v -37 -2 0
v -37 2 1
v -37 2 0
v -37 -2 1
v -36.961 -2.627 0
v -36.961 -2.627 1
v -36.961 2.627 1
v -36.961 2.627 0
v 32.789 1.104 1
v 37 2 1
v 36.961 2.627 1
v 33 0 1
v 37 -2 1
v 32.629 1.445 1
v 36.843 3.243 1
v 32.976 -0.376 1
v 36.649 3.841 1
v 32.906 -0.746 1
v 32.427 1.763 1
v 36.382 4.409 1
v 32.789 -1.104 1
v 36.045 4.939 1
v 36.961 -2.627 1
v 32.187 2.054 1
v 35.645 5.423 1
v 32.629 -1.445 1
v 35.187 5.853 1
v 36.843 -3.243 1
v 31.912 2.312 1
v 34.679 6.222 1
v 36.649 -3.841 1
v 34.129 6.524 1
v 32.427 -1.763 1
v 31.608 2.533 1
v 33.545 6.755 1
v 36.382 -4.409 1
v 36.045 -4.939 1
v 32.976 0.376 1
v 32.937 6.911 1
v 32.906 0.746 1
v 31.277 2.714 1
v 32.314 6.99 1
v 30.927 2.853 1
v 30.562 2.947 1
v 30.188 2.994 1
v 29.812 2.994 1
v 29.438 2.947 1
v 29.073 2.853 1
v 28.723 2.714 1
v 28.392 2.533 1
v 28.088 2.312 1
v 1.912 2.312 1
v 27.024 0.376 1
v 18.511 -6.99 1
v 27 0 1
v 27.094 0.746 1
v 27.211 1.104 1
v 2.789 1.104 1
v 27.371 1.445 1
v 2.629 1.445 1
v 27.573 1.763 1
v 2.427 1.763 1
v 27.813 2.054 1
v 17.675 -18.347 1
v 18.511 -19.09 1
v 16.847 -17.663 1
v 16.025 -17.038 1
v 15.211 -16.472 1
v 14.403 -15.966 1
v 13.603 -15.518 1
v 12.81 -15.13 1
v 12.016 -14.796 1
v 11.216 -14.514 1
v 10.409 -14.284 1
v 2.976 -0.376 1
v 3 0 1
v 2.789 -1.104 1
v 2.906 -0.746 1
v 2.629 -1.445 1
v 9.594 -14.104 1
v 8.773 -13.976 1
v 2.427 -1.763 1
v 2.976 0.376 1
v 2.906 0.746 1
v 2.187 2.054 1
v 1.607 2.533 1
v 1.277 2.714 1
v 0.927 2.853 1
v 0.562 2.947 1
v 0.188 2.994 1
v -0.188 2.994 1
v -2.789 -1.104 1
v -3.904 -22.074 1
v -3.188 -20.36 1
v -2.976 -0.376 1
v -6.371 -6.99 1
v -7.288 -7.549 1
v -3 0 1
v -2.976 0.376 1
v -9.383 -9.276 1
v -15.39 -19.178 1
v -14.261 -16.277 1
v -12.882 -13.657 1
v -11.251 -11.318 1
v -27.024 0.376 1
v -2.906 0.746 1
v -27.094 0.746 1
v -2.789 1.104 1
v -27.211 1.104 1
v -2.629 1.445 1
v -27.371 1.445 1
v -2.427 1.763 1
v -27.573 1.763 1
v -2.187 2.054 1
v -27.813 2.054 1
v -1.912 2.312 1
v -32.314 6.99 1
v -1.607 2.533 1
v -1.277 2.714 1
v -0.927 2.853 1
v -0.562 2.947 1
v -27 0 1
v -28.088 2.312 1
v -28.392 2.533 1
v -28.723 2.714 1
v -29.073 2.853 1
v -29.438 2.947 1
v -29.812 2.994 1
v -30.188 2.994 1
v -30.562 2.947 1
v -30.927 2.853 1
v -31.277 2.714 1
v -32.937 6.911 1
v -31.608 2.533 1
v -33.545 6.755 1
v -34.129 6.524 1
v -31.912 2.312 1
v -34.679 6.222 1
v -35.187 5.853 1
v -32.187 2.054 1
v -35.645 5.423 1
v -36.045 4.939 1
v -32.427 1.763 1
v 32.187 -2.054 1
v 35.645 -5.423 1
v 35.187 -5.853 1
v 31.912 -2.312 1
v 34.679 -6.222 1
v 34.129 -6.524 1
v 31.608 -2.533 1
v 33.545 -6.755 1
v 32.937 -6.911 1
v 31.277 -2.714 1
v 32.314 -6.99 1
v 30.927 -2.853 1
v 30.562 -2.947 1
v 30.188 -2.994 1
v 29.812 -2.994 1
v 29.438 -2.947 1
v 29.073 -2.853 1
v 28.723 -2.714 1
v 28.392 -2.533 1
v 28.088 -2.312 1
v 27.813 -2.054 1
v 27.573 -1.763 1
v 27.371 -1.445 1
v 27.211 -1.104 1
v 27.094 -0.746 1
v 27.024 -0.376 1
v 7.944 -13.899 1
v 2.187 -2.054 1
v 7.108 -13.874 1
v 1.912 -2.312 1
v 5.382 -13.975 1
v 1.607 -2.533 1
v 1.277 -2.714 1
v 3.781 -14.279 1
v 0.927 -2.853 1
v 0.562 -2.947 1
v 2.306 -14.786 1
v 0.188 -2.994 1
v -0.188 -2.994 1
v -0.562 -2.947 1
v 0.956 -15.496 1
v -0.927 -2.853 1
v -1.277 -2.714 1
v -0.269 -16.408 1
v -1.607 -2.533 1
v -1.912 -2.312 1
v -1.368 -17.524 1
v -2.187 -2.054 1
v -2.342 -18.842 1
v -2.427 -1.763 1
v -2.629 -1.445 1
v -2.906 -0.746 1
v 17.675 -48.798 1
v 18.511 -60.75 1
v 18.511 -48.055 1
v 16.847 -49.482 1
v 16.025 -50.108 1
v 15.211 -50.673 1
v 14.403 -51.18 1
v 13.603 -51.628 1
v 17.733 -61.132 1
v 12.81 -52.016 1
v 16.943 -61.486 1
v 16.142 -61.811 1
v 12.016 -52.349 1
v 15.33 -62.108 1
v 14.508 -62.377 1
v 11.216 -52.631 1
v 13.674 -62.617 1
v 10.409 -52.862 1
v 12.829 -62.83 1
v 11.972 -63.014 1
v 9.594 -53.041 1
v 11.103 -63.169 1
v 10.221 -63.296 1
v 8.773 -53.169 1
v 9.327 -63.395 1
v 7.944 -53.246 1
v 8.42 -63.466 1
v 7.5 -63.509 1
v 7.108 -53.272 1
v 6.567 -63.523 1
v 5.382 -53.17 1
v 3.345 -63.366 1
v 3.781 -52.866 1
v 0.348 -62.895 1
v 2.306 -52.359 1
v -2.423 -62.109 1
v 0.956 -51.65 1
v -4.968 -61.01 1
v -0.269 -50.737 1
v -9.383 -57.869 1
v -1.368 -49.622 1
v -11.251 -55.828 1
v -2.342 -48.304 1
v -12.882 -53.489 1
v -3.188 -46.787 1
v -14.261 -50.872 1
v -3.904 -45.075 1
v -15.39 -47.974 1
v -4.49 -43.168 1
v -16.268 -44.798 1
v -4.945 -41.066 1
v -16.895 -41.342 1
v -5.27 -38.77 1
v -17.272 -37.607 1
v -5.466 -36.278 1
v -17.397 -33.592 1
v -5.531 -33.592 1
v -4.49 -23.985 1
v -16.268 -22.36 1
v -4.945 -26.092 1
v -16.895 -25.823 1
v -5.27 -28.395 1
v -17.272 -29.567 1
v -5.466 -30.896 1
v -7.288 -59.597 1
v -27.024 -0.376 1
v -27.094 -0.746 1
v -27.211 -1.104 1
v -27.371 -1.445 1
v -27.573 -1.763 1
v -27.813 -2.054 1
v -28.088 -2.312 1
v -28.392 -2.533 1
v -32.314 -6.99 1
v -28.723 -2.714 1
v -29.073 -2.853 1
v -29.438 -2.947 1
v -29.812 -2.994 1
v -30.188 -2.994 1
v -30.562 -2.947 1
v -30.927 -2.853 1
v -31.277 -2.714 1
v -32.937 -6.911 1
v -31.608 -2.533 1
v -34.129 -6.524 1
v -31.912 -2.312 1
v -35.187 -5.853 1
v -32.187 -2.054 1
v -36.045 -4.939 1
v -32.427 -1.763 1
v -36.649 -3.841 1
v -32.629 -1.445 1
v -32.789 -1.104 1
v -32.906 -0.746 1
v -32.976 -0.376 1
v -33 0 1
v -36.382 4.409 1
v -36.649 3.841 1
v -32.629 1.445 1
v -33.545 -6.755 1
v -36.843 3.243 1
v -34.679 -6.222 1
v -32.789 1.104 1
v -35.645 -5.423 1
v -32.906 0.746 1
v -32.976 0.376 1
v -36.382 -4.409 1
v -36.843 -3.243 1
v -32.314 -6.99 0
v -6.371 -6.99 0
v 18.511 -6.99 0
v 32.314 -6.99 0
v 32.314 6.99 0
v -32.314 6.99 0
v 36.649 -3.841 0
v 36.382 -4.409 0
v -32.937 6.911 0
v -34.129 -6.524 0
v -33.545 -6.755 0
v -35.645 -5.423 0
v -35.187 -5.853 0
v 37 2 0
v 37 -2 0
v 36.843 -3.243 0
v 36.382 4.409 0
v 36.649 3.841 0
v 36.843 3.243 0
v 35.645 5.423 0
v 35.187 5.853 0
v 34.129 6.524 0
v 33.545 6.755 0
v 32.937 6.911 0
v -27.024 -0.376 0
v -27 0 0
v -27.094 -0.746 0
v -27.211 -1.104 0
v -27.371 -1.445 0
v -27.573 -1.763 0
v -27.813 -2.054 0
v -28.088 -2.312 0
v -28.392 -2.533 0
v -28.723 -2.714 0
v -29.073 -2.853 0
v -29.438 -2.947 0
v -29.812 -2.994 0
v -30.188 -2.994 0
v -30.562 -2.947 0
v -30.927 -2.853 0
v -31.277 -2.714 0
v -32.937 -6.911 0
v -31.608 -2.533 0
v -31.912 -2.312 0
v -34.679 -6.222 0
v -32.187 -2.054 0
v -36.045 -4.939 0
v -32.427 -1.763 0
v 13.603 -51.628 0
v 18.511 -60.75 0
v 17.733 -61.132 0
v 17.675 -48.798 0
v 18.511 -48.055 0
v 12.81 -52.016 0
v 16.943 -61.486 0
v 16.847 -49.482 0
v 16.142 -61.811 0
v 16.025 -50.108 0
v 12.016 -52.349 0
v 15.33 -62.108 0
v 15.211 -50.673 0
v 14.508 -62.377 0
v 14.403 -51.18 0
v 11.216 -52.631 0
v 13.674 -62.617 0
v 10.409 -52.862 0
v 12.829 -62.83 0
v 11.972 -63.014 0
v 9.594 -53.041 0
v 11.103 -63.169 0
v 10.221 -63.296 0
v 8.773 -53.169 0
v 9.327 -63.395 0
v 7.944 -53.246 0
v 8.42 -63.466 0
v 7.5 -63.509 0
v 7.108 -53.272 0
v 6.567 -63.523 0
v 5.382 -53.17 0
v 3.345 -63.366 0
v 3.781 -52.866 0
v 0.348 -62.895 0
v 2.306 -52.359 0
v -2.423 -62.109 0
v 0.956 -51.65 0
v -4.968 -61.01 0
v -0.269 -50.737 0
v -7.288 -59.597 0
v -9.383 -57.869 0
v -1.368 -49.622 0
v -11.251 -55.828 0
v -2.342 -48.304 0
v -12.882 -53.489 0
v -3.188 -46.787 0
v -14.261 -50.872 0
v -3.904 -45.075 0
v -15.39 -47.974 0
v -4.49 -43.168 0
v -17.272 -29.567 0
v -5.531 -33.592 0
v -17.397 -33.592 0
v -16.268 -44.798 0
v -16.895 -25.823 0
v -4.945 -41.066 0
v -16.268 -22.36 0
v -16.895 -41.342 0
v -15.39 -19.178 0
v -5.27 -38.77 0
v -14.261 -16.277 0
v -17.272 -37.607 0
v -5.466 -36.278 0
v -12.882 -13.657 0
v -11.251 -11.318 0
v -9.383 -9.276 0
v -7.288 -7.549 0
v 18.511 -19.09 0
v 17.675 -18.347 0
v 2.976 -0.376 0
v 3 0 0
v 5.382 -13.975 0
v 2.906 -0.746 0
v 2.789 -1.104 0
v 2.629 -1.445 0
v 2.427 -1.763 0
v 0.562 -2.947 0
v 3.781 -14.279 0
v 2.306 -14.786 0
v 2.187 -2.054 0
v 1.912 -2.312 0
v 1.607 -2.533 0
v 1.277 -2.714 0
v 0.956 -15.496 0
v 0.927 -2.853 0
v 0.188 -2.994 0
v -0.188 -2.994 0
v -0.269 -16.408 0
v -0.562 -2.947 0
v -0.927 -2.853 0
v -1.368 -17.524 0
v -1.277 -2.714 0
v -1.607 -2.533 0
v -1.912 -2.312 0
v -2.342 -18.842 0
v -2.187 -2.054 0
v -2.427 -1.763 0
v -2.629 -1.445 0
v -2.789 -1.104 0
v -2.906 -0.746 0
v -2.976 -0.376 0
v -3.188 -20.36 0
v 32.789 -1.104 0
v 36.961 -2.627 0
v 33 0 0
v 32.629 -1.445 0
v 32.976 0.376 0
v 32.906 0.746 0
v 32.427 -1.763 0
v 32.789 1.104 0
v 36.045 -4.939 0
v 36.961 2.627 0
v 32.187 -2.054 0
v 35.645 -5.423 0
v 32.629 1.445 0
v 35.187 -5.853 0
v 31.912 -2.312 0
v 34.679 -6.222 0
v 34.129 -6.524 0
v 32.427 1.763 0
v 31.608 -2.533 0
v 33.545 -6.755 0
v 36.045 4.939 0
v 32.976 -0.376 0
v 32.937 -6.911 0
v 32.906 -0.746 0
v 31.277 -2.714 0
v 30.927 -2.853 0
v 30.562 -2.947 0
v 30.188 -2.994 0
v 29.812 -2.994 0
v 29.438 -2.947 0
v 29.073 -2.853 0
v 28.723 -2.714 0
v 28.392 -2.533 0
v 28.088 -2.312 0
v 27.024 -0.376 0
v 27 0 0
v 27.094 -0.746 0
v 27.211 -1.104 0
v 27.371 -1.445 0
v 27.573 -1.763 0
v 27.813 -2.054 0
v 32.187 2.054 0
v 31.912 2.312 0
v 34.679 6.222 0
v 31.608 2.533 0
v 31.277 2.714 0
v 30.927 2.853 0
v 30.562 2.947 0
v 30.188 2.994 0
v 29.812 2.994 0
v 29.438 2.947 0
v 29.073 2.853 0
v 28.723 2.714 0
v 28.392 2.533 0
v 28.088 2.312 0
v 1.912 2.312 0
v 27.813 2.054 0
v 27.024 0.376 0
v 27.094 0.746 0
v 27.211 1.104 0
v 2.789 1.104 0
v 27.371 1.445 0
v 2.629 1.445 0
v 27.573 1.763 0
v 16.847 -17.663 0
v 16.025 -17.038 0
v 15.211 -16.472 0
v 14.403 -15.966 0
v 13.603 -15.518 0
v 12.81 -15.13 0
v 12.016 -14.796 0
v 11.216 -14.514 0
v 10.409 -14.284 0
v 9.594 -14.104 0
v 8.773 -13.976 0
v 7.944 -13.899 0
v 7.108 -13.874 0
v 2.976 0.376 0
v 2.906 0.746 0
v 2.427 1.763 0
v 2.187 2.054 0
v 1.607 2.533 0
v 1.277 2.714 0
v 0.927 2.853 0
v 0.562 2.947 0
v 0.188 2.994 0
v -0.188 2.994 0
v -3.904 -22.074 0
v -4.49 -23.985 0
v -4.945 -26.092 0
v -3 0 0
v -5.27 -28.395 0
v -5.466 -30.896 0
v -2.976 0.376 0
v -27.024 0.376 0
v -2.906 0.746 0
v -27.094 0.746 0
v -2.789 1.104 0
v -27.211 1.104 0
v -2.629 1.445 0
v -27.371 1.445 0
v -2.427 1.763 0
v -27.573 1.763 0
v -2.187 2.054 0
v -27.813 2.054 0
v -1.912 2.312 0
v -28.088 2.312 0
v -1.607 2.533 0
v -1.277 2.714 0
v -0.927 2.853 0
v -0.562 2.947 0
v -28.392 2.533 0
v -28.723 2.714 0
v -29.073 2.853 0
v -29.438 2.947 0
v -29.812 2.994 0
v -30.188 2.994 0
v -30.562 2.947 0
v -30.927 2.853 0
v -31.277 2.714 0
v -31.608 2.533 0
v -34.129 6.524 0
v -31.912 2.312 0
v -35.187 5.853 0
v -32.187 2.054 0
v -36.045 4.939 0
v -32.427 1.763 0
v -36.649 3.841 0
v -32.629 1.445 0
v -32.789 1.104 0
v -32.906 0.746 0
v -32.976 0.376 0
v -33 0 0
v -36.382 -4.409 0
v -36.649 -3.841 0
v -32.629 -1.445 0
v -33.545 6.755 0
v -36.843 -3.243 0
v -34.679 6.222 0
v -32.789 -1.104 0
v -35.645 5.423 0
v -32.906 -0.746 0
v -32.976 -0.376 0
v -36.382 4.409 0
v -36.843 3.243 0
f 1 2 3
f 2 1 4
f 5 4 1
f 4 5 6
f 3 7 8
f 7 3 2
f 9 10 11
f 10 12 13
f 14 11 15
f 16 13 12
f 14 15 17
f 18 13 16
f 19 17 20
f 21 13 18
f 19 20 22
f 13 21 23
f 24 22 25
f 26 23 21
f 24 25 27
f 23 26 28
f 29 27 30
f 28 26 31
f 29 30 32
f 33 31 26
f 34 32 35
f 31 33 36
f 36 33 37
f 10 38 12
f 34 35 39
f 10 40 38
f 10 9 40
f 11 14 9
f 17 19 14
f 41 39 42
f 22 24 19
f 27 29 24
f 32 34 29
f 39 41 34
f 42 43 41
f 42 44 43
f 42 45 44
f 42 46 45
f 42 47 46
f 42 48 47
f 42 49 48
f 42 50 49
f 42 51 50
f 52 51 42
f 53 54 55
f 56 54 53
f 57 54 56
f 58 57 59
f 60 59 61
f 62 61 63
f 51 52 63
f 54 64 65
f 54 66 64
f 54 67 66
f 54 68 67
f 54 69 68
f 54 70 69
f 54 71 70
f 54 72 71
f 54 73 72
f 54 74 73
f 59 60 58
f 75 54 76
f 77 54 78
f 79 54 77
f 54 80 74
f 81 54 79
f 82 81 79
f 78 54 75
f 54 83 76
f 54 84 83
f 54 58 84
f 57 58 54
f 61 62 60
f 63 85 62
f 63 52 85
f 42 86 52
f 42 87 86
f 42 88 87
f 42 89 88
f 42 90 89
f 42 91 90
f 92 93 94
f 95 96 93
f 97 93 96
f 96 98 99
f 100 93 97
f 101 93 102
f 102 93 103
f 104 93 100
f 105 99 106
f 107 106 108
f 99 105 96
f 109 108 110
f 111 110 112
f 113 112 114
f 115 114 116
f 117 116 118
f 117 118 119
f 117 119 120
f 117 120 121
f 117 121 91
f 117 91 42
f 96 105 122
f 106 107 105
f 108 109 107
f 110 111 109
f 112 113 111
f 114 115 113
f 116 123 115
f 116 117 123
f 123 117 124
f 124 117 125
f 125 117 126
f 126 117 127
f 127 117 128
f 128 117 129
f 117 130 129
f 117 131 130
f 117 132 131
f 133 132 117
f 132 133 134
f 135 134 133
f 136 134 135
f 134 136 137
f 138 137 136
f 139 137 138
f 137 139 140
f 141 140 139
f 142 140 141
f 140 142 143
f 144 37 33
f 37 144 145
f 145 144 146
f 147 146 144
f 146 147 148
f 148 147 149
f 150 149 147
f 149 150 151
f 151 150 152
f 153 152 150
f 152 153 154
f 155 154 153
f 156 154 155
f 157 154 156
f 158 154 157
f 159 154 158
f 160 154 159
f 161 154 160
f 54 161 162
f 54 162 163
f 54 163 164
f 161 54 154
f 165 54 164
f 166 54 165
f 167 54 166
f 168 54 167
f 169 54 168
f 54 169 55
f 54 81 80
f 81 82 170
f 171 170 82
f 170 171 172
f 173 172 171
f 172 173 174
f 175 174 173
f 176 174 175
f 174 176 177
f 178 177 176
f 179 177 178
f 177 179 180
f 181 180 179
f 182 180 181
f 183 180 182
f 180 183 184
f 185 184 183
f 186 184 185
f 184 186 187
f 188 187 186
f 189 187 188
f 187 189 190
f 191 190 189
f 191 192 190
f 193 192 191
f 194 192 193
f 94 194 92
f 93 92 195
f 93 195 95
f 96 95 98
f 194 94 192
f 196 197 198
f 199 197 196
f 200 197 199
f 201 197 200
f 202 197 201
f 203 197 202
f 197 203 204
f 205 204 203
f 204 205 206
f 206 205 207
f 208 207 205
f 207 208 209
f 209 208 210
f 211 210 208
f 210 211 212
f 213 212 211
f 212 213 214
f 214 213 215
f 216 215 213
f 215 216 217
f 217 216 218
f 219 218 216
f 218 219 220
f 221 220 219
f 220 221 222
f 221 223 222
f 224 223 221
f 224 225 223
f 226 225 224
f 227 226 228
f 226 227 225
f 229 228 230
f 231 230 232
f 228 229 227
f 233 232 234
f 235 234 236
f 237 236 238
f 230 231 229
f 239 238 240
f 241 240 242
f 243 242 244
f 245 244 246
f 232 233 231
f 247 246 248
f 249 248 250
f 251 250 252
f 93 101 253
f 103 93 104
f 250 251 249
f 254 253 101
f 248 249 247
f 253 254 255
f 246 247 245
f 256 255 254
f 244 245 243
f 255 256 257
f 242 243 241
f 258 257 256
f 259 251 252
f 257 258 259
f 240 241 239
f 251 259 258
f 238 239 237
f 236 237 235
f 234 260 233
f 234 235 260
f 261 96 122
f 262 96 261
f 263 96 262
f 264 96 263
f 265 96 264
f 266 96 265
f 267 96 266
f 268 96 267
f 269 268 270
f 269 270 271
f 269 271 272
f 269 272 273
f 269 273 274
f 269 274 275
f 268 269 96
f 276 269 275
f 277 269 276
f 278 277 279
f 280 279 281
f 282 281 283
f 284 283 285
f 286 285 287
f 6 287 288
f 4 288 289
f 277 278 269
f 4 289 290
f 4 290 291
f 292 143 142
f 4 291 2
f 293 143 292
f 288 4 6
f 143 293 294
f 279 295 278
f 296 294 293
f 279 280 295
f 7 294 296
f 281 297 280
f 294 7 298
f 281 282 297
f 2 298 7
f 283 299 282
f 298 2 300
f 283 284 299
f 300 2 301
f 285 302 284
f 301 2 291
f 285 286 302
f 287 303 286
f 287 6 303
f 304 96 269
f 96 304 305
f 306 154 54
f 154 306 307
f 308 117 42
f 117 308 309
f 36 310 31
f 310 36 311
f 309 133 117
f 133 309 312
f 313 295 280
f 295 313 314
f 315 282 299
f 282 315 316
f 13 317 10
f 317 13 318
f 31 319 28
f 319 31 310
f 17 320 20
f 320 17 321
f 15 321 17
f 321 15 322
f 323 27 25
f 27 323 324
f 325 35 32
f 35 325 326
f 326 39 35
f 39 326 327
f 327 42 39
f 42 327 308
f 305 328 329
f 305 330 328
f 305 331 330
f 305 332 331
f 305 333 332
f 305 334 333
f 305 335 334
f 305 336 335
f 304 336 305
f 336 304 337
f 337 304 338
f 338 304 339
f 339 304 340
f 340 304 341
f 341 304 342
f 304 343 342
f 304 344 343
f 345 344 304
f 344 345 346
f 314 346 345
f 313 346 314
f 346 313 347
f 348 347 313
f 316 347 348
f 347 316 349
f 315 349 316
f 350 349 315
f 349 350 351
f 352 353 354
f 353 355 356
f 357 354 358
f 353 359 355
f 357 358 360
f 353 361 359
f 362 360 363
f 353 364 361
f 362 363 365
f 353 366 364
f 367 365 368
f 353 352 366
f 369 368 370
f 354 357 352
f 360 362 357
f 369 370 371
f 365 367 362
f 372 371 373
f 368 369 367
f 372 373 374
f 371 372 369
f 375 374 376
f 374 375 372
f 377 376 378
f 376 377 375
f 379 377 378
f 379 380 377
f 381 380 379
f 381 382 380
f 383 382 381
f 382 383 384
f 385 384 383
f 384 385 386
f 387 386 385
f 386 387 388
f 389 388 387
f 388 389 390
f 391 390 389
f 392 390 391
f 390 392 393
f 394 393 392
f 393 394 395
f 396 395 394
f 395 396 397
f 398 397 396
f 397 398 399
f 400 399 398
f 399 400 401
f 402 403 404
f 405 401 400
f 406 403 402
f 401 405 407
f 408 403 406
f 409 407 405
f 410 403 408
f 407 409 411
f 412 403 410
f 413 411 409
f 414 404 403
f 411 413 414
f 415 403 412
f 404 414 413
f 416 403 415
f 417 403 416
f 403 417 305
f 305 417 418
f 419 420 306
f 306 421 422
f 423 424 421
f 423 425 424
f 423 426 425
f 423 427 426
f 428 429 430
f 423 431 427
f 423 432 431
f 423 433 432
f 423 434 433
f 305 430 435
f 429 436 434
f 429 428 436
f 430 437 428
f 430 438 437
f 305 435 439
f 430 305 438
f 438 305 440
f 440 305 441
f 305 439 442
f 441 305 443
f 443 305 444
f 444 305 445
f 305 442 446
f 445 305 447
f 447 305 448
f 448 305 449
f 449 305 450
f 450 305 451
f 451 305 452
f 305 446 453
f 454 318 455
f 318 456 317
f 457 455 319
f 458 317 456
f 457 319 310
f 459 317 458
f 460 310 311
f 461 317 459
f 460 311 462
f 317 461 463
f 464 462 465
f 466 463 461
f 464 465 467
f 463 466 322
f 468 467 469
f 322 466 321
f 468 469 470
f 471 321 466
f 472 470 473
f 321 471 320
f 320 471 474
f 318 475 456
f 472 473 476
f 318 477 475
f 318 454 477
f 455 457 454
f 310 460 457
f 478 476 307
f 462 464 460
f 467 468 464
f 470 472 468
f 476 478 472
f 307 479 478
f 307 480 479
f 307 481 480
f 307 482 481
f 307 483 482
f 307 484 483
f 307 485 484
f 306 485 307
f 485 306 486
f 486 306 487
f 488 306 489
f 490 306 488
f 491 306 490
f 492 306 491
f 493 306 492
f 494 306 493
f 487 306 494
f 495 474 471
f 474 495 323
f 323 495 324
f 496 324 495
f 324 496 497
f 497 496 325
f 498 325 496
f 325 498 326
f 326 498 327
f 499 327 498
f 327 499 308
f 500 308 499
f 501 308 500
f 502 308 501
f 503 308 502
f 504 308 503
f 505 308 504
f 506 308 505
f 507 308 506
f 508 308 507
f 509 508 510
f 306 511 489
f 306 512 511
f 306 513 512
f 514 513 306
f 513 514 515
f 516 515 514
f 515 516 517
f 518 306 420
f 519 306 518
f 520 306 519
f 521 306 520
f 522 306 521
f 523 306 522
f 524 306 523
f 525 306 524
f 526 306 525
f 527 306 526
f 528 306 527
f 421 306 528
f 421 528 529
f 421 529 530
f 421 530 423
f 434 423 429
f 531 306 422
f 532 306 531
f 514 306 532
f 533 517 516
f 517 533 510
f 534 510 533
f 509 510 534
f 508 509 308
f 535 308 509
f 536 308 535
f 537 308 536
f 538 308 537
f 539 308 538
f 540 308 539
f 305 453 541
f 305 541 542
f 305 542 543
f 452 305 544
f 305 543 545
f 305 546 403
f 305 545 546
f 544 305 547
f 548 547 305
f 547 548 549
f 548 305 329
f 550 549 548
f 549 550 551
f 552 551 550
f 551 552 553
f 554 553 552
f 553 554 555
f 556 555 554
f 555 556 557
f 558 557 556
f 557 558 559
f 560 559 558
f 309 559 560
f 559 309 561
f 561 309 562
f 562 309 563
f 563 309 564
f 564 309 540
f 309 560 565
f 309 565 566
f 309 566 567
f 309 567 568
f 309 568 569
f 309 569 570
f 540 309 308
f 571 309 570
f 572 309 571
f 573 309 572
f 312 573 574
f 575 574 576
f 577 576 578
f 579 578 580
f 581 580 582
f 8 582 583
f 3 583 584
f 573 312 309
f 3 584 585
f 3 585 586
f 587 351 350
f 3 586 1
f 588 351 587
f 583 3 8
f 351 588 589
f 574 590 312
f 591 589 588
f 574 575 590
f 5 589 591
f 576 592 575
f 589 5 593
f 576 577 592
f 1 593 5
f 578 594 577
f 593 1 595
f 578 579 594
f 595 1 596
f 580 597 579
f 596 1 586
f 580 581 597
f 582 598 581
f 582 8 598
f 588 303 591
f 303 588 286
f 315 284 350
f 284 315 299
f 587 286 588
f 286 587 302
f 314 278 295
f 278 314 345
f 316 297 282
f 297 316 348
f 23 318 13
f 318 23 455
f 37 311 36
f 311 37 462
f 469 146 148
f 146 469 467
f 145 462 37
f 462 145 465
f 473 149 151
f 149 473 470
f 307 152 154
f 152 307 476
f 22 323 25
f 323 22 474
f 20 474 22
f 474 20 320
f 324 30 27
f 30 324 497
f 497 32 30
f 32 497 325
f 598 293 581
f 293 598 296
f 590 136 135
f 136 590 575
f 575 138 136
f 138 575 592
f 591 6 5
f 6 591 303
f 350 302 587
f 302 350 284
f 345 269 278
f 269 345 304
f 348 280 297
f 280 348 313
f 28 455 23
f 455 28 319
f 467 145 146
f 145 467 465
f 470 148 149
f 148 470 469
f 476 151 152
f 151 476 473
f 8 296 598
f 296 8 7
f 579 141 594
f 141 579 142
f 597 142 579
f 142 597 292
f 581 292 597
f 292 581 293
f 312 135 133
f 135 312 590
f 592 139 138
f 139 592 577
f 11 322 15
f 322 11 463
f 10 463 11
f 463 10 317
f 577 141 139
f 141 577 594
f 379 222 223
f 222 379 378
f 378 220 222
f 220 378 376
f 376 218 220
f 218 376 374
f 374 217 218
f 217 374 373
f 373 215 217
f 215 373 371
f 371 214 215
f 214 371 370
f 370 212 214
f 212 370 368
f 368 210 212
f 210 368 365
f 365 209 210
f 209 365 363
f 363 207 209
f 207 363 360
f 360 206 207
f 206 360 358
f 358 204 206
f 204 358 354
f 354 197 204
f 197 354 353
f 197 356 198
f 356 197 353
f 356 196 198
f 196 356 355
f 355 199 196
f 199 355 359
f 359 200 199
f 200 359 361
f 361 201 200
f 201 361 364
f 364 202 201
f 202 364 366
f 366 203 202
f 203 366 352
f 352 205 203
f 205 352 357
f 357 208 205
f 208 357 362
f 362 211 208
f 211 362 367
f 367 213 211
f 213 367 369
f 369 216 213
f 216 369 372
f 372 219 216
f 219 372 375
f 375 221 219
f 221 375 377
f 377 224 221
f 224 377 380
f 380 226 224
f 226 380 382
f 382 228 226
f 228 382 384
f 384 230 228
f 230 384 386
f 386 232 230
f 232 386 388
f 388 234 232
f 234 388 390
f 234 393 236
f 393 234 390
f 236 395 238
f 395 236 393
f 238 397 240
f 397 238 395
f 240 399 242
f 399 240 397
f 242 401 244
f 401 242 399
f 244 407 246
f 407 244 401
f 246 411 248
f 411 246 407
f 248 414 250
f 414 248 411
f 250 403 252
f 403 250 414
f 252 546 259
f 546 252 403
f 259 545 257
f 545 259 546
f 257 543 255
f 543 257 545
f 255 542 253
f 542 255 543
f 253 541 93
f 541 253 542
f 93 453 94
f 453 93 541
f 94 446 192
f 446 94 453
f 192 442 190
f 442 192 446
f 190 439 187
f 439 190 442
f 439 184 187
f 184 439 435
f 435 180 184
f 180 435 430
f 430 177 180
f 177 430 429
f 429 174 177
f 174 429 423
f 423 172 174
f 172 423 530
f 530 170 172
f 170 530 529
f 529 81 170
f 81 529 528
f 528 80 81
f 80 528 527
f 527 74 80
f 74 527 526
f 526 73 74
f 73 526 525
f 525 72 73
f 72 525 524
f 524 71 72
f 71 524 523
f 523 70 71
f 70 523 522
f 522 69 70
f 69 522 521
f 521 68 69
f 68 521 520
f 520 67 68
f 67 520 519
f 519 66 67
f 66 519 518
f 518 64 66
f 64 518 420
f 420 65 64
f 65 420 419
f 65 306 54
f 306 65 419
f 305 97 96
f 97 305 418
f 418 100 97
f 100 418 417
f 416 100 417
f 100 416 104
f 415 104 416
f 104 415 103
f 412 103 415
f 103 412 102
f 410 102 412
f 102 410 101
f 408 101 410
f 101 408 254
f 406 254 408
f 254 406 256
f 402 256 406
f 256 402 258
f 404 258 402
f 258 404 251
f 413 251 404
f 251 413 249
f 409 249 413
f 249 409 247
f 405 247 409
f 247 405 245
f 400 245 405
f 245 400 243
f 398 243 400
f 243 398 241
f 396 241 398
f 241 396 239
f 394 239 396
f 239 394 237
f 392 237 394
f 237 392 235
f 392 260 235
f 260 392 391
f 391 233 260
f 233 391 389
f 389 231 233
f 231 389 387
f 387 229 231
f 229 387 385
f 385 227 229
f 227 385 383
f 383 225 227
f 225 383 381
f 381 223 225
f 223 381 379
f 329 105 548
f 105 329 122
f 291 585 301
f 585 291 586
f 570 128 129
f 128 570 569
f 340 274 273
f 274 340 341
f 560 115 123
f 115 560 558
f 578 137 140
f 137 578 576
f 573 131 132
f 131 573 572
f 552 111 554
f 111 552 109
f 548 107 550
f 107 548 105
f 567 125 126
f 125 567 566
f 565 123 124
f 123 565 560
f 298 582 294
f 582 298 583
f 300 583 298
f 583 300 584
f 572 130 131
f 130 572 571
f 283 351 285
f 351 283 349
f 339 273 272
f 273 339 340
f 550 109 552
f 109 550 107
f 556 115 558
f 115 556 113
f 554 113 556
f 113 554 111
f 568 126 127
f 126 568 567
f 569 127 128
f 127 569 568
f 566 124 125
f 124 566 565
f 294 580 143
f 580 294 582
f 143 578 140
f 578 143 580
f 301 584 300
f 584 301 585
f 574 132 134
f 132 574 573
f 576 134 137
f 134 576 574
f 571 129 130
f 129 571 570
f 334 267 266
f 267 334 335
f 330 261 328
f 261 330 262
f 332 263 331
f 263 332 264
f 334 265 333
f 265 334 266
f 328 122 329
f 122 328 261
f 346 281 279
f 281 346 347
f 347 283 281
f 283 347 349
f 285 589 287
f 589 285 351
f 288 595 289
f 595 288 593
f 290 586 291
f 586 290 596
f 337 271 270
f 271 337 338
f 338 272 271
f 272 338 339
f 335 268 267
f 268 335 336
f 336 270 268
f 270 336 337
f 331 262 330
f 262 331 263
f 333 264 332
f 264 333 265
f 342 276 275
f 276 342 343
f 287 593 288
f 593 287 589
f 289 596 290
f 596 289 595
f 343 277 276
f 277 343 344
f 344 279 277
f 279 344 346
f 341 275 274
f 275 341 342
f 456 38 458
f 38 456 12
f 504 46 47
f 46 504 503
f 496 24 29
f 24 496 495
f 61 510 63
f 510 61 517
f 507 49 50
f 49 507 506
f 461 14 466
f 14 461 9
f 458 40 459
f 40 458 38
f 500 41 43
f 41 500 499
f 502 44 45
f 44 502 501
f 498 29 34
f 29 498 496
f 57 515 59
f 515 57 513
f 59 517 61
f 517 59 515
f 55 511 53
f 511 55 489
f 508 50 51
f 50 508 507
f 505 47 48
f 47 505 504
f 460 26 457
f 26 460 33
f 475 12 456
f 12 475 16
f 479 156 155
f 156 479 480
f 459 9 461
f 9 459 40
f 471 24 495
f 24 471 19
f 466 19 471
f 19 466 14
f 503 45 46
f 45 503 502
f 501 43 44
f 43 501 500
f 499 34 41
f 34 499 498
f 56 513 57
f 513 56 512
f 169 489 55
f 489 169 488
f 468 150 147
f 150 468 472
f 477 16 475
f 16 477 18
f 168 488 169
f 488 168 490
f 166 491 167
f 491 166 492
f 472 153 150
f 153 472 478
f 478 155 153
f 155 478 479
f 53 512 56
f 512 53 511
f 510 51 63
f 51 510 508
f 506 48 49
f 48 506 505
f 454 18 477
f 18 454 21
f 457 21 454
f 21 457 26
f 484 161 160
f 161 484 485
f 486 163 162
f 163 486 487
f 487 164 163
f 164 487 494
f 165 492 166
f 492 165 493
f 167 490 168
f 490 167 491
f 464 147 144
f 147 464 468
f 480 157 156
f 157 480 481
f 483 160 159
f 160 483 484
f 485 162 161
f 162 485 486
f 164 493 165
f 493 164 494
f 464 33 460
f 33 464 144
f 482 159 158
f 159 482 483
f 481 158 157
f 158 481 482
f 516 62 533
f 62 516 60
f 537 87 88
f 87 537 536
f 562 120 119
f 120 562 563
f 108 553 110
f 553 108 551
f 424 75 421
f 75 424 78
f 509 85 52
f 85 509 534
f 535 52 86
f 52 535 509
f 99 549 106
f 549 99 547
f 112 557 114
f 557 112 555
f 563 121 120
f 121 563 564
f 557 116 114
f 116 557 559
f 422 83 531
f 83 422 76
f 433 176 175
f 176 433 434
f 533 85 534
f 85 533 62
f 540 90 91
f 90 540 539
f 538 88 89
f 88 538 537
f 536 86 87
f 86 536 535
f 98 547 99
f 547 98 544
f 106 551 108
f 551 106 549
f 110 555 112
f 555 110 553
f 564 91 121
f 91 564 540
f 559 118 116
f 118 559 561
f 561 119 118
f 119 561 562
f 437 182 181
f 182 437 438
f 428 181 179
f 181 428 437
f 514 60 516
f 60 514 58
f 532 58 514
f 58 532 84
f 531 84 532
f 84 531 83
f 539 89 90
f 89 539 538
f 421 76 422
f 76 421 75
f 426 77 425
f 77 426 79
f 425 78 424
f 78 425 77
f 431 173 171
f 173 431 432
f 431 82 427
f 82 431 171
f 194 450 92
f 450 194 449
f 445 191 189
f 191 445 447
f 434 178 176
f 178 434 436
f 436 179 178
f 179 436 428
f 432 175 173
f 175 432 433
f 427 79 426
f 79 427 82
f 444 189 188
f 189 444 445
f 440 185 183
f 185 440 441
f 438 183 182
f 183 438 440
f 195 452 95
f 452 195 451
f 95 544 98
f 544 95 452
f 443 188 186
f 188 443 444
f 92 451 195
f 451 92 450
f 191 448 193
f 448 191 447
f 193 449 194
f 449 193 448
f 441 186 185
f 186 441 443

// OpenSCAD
$fn = 50;


difference() {
	union() {
		translate(v = [0, 0, 0]) {
			rotate(a = [0, 0, 0]) {
				hull() {
					translate(v = [-32.0000000000, 2.0000000000, 0]) {
						rotate(a = [0, 0, 0]) {
							translate(v = [0, 0, 0]) {
								rotate(a = [0, 0, 0]) {
									cylinder(h = 1, r = 5);
								}
							}
						}
					}
					translate(v = [32.0000000000, 2.0000000000, 0]) {
						rotate(a = [0, 0, 0]) {
							translate(v = [0, 0, 0]) {
								rotate(a = [0, 0, 0]) {
									cylinder(h = 1, r = 5);
								}
							}
						}
					}
					translate(v = [-32.0000000000, -2.0000000000, 0]) {
						rotate(a = [0, 0, 0]) {
							translate(v = [0, 0, 0]) {
								rotate(a = [0, 0, 0]) {
									cylinder(h = 1, r = 5);
								}
							}
						}
					}
					translate(v = [32.0000000000, -2.0000000000, 0]) {
						rotate(a = [0, 0, 0]) {
							translate(v = [0, 0, 0]) {
								rotate(a = [0, 0, 0]) {
									cylinder(h = 1, r = 5);
								}
							}
						}
					}
				}
			}
		}
		translate(v = [0, -5, 0]) {
			rotate(a = [0, 0, 0]) {
				linear_extrude(height = 1) {
					text(font = "DejaVu Sans Mono:style=Bold", halign = "center", size = 57.0000000000, text = "C", valign = "top");
				}
			}
		}
	}
	union() {
		translate(v = [-30.0000000000, 0.0000000000, -125.0000000000]) {
			rotate(a = [0, 0, 0]) {
				cylinder(h = 250, r = 3.0000000000);
			}
		}
		translate(v = [30.0000000000, 0.0000000000, -125.0000000000]) {
			rotate(a = [0, 0, 0]) {
				cylinder(h = 250, r = 3.0000000000);
			}
		}
		translate(v = [30.0000000000, 0.0000000000, -125.0000000000]) {
			rotate(a = [0, 0, 0]) {
				cylinder(h = 250, r = 3.0000000000);
			}
		}
		translate(v = [0, 0, -125.0000000000]) {
			rotate(a = [0, 0, 0]) {
				cylinder(h = 250, r = 3.0000000000);
			}
		}
	}
}
